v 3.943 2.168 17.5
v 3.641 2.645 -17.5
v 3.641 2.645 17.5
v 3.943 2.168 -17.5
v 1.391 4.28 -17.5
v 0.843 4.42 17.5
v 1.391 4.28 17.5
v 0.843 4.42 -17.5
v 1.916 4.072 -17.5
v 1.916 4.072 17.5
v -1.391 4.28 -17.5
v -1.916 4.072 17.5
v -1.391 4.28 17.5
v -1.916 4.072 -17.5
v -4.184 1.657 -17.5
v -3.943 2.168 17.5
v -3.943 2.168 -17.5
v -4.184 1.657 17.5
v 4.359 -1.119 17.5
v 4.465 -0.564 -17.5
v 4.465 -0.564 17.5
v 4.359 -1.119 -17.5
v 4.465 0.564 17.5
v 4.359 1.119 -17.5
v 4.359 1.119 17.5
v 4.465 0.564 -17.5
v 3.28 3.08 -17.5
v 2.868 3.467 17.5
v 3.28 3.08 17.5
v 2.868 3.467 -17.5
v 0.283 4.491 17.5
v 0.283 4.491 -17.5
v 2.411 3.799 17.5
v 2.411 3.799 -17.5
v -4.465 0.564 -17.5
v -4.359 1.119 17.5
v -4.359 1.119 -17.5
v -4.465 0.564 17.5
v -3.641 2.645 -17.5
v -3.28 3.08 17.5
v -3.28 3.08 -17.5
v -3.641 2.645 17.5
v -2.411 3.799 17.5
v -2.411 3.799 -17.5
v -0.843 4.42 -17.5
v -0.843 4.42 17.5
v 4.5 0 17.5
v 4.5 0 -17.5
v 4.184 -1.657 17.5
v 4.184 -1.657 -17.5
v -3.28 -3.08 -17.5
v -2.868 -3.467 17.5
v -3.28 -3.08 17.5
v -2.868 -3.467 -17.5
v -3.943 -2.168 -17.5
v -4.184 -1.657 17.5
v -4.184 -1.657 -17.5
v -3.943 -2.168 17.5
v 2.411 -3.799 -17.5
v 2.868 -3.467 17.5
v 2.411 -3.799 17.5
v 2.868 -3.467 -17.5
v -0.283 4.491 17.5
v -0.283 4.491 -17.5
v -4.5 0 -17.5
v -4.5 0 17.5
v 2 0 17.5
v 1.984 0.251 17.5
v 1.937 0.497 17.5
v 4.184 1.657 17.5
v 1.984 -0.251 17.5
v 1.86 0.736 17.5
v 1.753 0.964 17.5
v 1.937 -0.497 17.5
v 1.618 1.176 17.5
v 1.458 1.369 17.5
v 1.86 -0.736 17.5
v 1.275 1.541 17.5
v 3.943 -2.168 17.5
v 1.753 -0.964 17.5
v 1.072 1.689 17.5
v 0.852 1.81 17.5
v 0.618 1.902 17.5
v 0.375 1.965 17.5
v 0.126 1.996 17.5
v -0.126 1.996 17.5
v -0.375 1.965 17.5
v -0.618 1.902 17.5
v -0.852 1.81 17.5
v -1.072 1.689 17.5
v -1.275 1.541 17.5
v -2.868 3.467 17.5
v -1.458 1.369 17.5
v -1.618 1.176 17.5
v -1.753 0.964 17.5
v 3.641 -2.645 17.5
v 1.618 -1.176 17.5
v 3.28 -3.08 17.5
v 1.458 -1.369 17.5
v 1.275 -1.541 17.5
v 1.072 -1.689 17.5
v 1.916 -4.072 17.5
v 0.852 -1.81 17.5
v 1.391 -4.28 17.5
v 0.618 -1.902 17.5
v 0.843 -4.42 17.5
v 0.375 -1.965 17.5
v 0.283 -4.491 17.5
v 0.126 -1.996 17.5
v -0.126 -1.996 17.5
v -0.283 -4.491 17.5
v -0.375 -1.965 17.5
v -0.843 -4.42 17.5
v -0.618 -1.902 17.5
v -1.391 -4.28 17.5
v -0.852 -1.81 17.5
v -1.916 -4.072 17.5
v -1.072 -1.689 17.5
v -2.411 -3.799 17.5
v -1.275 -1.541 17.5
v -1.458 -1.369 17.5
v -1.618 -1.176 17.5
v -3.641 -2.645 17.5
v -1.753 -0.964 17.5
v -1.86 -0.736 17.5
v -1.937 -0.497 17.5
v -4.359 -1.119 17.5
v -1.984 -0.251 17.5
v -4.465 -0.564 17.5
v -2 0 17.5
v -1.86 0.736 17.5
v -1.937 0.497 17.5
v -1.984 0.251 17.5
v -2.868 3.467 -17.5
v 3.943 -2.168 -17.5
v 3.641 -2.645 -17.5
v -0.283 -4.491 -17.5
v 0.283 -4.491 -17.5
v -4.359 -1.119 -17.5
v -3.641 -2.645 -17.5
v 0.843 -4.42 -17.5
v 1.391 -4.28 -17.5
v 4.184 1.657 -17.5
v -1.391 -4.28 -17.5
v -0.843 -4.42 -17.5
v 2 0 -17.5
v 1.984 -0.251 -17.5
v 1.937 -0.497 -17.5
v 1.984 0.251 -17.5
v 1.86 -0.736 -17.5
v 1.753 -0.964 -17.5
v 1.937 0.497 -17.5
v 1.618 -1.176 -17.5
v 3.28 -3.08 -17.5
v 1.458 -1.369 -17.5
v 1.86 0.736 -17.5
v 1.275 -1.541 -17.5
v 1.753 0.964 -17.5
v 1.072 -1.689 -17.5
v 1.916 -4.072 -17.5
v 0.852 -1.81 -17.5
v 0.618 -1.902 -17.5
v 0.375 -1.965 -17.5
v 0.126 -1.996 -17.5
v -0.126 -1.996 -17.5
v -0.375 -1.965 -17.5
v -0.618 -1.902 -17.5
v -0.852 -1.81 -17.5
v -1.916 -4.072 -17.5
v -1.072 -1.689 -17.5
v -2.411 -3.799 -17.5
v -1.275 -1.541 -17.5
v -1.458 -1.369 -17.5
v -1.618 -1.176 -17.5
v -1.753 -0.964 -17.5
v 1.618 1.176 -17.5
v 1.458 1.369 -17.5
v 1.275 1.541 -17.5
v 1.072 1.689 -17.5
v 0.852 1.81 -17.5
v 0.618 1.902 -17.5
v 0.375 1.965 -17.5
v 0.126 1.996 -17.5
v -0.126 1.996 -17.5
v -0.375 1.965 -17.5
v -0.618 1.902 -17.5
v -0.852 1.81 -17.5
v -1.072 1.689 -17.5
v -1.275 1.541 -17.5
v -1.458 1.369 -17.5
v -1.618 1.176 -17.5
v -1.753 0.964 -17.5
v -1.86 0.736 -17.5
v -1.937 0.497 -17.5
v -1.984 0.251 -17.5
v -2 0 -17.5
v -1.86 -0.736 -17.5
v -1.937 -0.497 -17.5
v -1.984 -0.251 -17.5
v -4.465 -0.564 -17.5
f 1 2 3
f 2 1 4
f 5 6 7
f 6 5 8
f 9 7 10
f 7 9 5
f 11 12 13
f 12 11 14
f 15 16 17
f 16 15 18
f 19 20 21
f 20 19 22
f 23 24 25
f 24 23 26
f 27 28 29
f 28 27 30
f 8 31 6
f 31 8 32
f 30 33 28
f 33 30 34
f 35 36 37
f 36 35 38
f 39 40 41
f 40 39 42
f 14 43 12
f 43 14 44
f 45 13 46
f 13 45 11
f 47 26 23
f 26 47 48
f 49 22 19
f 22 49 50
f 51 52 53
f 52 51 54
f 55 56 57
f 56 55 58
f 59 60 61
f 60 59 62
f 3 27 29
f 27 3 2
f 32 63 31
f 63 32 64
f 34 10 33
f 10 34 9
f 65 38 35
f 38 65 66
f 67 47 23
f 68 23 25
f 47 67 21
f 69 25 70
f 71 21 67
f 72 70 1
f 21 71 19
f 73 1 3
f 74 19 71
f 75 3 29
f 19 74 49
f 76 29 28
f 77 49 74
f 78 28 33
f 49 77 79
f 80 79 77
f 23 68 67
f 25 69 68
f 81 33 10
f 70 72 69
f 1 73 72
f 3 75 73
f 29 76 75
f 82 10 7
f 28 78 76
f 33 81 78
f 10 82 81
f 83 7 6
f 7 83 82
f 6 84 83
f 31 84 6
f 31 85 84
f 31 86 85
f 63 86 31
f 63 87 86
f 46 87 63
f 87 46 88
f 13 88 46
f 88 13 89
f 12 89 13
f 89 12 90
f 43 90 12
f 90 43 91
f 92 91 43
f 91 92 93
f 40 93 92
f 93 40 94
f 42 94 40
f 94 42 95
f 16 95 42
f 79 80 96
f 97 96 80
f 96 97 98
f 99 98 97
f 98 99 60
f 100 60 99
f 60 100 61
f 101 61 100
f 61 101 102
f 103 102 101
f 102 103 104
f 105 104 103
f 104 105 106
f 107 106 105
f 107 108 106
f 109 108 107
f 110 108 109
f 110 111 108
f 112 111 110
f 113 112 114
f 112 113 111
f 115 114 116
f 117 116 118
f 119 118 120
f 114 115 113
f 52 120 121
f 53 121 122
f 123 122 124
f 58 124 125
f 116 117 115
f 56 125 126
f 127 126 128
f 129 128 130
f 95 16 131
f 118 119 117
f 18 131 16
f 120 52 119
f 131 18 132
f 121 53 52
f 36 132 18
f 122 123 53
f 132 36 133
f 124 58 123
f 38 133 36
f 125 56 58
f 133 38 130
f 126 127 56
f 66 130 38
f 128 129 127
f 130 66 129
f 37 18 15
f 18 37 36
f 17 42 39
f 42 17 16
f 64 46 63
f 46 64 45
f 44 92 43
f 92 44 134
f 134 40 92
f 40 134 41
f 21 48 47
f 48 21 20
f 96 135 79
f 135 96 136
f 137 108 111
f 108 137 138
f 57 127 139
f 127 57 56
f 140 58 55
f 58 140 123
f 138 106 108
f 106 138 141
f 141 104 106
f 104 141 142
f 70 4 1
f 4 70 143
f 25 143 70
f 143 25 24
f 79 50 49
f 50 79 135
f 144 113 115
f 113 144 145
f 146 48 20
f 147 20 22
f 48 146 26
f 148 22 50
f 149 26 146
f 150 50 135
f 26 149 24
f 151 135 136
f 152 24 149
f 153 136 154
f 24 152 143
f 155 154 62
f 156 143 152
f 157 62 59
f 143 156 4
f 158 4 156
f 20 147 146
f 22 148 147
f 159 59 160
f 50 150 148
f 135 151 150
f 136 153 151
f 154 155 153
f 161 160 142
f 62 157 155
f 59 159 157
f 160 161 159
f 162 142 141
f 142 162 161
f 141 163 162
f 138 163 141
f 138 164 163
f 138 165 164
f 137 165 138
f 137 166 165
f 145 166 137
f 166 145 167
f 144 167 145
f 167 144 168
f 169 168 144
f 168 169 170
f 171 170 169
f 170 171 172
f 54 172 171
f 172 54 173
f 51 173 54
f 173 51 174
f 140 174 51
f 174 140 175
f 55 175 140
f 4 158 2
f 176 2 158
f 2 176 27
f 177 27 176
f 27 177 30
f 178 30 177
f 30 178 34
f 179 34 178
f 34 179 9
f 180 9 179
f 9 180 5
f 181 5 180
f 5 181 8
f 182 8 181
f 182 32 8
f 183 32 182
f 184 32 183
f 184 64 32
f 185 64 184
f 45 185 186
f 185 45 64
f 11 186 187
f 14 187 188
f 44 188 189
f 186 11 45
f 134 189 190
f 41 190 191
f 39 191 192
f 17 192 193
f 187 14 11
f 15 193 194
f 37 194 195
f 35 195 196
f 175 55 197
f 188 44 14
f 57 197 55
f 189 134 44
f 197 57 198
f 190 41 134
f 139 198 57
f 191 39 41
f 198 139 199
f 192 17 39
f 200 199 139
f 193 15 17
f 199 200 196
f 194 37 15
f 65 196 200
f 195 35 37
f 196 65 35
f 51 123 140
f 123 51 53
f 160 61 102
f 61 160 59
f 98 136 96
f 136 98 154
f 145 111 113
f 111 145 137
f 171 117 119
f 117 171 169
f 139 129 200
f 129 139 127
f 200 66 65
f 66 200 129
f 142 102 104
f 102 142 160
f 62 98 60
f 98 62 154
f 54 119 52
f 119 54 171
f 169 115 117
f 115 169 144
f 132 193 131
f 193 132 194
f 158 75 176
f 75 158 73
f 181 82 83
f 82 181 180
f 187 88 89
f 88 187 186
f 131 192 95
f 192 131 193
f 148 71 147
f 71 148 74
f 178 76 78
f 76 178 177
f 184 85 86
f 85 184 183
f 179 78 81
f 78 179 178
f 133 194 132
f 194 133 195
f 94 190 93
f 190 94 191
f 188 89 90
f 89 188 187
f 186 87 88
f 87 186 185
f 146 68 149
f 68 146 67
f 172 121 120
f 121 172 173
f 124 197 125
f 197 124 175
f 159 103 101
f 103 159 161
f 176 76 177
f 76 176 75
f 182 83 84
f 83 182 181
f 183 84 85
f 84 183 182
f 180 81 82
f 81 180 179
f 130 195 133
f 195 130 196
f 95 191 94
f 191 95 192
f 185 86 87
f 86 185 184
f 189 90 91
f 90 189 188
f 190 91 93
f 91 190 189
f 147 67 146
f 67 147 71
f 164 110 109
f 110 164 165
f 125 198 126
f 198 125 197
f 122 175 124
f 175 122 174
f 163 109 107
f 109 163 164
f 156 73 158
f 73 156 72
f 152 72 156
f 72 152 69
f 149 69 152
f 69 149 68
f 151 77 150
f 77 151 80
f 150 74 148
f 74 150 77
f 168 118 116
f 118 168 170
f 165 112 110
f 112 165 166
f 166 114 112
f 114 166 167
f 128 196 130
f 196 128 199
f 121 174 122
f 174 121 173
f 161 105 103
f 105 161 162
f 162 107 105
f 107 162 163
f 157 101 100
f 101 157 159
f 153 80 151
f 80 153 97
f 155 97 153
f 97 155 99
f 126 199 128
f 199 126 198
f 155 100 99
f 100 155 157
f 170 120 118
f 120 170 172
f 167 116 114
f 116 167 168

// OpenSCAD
$fn = 50;


difference() {
	union() {
		translate(v = [0, 0, -17.5000000000]) {
			cylinder(h = 35, r = 4.5000000000);
		}
	}
	union() {
		translate(v = [0, 0, -100.0000000000]) {
			cylinder(h = 200, r = 2);
		}
	}
}
